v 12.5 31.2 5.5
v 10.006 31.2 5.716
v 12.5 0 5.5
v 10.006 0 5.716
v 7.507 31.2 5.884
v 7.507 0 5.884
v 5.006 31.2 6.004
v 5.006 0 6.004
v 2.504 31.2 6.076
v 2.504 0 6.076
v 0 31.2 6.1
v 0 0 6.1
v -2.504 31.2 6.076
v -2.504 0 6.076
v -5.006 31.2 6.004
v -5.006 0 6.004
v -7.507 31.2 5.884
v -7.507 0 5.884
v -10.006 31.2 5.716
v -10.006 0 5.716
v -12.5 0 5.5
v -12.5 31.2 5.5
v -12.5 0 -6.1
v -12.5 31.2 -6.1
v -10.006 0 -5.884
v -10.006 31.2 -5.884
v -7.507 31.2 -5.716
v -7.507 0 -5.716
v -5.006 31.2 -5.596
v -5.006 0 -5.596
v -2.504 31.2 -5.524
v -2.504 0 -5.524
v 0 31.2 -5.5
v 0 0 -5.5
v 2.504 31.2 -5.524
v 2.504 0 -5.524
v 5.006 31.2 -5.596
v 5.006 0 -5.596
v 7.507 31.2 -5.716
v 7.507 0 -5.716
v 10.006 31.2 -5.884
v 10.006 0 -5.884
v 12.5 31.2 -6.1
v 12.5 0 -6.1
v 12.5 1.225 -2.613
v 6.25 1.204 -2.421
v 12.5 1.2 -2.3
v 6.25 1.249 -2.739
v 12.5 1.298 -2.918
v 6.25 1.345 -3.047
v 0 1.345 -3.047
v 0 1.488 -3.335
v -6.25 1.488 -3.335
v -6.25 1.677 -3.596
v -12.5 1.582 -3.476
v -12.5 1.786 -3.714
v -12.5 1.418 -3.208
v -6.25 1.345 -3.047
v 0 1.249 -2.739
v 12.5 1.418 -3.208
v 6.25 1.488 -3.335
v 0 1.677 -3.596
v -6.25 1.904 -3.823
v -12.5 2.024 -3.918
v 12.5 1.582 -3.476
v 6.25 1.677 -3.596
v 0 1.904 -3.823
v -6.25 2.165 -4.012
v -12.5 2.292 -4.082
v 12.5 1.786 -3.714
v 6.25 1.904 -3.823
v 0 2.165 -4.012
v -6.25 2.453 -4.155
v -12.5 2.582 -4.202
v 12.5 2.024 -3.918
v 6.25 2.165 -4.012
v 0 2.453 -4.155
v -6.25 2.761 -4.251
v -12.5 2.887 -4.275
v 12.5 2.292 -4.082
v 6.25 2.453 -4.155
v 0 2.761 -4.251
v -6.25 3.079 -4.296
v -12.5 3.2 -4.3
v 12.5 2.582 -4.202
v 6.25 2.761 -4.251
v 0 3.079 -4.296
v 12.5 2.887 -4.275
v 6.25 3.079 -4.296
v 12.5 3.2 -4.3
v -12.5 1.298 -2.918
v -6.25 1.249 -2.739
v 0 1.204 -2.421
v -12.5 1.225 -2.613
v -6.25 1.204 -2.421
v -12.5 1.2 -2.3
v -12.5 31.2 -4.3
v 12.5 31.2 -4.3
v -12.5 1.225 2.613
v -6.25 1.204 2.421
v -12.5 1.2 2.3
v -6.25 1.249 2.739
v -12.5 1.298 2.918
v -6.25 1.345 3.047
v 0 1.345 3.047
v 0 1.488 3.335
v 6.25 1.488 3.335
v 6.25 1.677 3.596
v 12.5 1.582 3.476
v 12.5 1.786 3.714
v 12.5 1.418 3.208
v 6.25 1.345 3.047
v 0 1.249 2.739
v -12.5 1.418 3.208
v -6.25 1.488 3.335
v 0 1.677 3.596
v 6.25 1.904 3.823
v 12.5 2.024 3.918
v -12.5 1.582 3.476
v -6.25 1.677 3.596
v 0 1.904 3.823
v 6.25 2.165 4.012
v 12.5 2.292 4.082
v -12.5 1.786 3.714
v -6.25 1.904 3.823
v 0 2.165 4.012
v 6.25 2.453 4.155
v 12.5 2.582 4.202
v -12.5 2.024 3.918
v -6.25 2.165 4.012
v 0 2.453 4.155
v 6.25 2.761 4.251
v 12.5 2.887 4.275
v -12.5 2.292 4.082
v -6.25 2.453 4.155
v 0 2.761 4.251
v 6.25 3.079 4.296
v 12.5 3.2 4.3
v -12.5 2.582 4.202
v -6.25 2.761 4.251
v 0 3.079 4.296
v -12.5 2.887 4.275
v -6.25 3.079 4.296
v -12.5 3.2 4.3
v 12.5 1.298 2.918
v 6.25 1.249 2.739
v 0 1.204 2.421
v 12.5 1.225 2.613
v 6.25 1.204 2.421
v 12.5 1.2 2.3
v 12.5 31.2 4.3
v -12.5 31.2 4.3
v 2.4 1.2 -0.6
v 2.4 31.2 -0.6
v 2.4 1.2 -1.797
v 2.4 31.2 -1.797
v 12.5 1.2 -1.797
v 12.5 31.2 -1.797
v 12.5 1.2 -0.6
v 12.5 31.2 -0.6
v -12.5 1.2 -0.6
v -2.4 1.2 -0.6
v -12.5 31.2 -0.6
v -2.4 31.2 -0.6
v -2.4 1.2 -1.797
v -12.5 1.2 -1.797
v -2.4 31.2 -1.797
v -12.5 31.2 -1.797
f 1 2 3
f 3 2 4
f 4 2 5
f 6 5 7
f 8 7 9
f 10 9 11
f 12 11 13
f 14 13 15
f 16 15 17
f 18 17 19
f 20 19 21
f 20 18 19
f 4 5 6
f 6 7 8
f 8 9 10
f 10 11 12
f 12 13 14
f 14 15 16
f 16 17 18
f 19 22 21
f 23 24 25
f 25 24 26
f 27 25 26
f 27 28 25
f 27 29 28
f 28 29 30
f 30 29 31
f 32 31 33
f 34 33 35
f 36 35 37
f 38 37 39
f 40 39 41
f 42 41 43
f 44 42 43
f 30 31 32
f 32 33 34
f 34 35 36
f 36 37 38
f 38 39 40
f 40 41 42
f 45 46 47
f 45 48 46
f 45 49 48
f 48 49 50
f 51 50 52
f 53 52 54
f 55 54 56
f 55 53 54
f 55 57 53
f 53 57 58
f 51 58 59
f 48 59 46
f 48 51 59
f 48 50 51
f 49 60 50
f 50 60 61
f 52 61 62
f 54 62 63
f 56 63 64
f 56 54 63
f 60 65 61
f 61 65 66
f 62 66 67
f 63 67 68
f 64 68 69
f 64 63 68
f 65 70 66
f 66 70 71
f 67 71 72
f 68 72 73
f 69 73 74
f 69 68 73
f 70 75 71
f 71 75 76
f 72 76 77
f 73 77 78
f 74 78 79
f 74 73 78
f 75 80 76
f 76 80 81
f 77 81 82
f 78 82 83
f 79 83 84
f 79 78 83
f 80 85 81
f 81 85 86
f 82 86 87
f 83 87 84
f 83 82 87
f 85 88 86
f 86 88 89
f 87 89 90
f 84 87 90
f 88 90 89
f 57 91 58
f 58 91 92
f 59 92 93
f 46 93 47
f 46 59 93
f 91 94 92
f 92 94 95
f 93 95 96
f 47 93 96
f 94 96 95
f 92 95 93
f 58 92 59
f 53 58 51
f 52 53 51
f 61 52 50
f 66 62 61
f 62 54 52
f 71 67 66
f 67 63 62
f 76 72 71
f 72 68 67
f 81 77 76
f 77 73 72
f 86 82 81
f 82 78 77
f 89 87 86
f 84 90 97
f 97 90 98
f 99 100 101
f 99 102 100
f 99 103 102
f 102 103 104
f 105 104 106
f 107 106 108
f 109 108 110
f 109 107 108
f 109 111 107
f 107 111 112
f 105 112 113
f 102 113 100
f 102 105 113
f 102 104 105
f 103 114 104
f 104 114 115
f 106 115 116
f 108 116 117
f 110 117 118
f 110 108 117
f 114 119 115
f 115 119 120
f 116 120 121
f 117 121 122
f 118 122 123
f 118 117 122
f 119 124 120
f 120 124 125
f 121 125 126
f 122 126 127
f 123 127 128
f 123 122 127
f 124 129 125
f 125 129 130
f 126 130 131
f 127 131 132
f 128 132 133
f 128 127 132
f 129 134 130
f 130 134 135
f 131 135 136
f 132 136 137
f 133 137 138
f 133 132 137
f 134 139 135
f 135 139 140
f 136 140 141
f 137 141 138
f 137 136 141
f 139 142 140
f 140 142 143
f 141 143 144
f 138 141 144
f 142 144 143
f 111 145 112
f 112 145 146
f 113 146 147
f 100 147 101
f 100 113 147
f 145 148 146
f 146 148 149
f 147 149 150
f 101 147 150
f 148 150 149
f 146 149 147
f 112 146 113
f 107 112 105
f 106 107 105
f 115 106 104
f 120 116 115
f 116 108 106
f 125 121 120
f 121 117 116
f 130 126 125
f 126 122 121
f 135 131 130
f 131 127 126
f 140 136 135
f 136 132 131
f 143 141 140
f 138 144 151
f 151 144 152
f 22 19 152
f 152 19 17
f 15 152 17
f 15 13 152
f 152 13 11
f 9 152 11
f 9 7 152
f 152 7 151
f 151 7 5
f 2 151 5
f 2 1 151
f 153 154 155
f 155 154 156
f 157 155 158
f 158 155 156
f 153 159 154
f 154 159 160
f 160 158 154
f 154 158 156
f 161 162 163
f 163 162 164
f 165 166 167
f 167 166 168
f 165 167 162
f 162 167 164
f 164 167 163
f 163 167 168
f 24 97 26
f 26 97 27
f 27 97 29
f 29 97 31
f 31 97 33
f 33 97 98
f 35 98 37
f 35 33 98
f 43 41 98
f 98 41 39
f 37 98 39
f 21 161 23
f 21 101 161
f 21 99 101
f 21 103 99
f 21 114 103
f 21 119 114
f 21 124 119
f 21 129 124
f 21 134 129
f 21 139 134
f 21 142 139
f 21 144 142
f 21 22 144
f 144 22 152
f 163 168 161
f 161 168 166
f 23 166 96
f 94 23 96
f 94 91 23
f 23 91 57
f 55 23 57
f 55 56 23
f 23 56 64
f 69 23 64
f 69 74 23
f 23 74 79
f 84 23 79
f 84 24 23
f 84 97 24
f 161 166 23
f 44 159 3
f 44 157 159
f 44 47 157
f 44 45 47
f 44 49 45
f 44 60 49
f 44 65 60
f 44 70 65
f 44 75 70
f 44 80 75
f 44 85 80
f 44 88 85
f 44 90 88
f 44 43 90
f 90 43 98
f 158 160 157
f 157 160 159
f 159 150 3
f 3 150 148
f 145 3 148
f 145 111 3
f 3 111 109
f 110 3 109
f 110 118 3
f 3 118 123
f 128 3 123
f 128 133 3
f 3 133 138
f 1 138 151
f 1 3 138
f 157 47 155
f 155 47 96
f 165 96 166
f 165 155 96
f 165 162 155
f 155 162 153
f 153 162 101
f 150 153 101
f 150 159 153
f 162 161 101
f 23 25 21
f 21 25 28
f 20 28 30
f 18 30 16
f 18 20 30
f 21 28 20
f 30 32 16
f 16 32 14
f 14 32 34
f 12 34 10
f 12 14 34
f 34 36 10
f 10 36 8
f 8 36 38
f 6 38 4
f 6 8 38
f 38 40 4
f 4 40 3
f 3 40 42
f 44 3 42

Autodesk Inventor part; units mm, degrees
ref_plane "YZ Plane" through (0, 0, 0) normal (1, 0, 0) x (0, 1, 0)
ref_plane "XZ Plane" through (0, 0, 0) normal (0, 1, 0) x (-1, 0, 0)
ref_plane "XY Plane" through (0, 0, 0) normal (0, 0, 1) x (1, 0, 0)
sketch "Sketch1" plane through (0, 0, 0) normal (0, 1, 0) x (-1, 0, 0)
  line L0 (12.5, 5.5) -> (-12.5, 5.5)
  line L1 (-12.5, 5.5) -> (-12.5, -5.5)
  line L2 (-12.5, -5.5) -> (12.5, -5.5)
  line L3 (12.5, -5.5) -> (12.5, 5.5)
  line L4 (12.5, 5.5) -> (-12.5, -5.5) construction
  line L5 (-12.5, 5.5) -> (12.5, -5.5) construction
  point P0 (0, 0)
  dimension "d0" = 25
  dimension "d1" = 11
extrude "Extrusion1" add sketch "Sketch1" along normal blind 1.2
sketch "Sketch2" plane through (0, 1.2, 0) normal (0, 1, 0) x (1, 0, 0)
  line L0 (-12.5, 5.5) -> (12.5, 5.5)
  line L1 (12.5, 5.5) -> (12.5, 4.3)
  line L2 (12.5, 4.3) -> (-12.5, 4.3)
  line L3 (-12.5, 4.3) -> (-12.5, 5.5)
  line L4 (0, 4.3) -> (0, 1.8)
  line L5 (-12.5, 5.5) -> (-12.5, -5.5) projected
  line L6 (-12.5, 5.5) -> (-12.5, -5.5) projected
  line L7 (0, 0.6) -> (0, -4.3)
  line L8 (-12.5, -4.3) -> (12.5, -4.3)
  line L9 (12.5, -5.5) -> (12.5, -4.3)
  line L10 (-12.5, -4.3) -> (-12.5, -5.5)
  line L11 (-12.5, -5.5) -> (12.5, -5.5)
  line L12 (-2.4, 1.7967) -> (-2.4, 0.6)
  line L13 (-2.4, 0.6) -> (2.4, 0.6)
  line L14 (2.4, 0.6) -> (2.4, 1.7967)
  line L15 (-2.4, 1.7967) -> (2.4, 0.6) construction
  line L16 (-2.4, 0.6) -> (2.4, 1.7967) construction
  line L17 (-2.4, 1.7967) -> (-12.5, 1.7967)
  line L18 (-12.5, 0.6) -> (-12.5, 1.7967)
  line L19 (-12.5, 0.6) -> (-2.4, 0.6)
  line L20 (2.4, 1.7967) -> (12.5, 1.7967)
  line L21 (12.5, -5.5) -> (12.5, 5.5) projected
  line L22 (2.4, 0.6) -> (12.5, 0.6)
  line L23 (12.5, 0.6) -> (12.5, 1.7967)
  point P0 (0, 0)
  point P1 (0, 1.1983)
  dimension "d4" = 1.2
  dimension "d5" = 2.5
  dimension "d7" = 4.9
  dimension "d11" = 4.8
extrude "Extrusion2" add sketch "Sketch2" along normal blind 30 contours L0 L1 L2 L3 | L17 L12 L19 L5 | L21 L22 L14 L20 | L8 L9 L11 L5
fillet "Fillet1" radius 2 2 edges at (0, 1.2, 4.3) (0, 1.2, -4.3)
sketch "Sketch3" plane through (0, 31.2, 0) normal (0, 1, 0) x (1, 0, 0)
  line L0 (12.5, 5.5) -> (-12.5, 5.5) projected
  line L1 (0, 5.5) -> (0, 6.1)
  arc A0 (-12.5, 6.1) -> (12.5, 6.1) centre (0, 136.0083) ccw
  line L2 (-12.5, 6.1) -> (-12.5, 5.5)
  line L3 (12.5, 6.1) -> (12.5, 5.5)
  line L4 (-12.5, -5.5) -> (12.5, -5.5) projected
  line L5 (0, -5.5) -> (0, -6.1)
  arc A1 (-12.5, -5.5) -> (12.5, -5.5) centre (0, 124.4083) ccw
  point P0 (0, 0)
  dimension "d13" = 0.6
  dimension "d14" = 0.6
extrude "Extrusion3" add sketch "Sketch3" against normal blind 31.2
properties part number "HanesBand-Adjuster"
